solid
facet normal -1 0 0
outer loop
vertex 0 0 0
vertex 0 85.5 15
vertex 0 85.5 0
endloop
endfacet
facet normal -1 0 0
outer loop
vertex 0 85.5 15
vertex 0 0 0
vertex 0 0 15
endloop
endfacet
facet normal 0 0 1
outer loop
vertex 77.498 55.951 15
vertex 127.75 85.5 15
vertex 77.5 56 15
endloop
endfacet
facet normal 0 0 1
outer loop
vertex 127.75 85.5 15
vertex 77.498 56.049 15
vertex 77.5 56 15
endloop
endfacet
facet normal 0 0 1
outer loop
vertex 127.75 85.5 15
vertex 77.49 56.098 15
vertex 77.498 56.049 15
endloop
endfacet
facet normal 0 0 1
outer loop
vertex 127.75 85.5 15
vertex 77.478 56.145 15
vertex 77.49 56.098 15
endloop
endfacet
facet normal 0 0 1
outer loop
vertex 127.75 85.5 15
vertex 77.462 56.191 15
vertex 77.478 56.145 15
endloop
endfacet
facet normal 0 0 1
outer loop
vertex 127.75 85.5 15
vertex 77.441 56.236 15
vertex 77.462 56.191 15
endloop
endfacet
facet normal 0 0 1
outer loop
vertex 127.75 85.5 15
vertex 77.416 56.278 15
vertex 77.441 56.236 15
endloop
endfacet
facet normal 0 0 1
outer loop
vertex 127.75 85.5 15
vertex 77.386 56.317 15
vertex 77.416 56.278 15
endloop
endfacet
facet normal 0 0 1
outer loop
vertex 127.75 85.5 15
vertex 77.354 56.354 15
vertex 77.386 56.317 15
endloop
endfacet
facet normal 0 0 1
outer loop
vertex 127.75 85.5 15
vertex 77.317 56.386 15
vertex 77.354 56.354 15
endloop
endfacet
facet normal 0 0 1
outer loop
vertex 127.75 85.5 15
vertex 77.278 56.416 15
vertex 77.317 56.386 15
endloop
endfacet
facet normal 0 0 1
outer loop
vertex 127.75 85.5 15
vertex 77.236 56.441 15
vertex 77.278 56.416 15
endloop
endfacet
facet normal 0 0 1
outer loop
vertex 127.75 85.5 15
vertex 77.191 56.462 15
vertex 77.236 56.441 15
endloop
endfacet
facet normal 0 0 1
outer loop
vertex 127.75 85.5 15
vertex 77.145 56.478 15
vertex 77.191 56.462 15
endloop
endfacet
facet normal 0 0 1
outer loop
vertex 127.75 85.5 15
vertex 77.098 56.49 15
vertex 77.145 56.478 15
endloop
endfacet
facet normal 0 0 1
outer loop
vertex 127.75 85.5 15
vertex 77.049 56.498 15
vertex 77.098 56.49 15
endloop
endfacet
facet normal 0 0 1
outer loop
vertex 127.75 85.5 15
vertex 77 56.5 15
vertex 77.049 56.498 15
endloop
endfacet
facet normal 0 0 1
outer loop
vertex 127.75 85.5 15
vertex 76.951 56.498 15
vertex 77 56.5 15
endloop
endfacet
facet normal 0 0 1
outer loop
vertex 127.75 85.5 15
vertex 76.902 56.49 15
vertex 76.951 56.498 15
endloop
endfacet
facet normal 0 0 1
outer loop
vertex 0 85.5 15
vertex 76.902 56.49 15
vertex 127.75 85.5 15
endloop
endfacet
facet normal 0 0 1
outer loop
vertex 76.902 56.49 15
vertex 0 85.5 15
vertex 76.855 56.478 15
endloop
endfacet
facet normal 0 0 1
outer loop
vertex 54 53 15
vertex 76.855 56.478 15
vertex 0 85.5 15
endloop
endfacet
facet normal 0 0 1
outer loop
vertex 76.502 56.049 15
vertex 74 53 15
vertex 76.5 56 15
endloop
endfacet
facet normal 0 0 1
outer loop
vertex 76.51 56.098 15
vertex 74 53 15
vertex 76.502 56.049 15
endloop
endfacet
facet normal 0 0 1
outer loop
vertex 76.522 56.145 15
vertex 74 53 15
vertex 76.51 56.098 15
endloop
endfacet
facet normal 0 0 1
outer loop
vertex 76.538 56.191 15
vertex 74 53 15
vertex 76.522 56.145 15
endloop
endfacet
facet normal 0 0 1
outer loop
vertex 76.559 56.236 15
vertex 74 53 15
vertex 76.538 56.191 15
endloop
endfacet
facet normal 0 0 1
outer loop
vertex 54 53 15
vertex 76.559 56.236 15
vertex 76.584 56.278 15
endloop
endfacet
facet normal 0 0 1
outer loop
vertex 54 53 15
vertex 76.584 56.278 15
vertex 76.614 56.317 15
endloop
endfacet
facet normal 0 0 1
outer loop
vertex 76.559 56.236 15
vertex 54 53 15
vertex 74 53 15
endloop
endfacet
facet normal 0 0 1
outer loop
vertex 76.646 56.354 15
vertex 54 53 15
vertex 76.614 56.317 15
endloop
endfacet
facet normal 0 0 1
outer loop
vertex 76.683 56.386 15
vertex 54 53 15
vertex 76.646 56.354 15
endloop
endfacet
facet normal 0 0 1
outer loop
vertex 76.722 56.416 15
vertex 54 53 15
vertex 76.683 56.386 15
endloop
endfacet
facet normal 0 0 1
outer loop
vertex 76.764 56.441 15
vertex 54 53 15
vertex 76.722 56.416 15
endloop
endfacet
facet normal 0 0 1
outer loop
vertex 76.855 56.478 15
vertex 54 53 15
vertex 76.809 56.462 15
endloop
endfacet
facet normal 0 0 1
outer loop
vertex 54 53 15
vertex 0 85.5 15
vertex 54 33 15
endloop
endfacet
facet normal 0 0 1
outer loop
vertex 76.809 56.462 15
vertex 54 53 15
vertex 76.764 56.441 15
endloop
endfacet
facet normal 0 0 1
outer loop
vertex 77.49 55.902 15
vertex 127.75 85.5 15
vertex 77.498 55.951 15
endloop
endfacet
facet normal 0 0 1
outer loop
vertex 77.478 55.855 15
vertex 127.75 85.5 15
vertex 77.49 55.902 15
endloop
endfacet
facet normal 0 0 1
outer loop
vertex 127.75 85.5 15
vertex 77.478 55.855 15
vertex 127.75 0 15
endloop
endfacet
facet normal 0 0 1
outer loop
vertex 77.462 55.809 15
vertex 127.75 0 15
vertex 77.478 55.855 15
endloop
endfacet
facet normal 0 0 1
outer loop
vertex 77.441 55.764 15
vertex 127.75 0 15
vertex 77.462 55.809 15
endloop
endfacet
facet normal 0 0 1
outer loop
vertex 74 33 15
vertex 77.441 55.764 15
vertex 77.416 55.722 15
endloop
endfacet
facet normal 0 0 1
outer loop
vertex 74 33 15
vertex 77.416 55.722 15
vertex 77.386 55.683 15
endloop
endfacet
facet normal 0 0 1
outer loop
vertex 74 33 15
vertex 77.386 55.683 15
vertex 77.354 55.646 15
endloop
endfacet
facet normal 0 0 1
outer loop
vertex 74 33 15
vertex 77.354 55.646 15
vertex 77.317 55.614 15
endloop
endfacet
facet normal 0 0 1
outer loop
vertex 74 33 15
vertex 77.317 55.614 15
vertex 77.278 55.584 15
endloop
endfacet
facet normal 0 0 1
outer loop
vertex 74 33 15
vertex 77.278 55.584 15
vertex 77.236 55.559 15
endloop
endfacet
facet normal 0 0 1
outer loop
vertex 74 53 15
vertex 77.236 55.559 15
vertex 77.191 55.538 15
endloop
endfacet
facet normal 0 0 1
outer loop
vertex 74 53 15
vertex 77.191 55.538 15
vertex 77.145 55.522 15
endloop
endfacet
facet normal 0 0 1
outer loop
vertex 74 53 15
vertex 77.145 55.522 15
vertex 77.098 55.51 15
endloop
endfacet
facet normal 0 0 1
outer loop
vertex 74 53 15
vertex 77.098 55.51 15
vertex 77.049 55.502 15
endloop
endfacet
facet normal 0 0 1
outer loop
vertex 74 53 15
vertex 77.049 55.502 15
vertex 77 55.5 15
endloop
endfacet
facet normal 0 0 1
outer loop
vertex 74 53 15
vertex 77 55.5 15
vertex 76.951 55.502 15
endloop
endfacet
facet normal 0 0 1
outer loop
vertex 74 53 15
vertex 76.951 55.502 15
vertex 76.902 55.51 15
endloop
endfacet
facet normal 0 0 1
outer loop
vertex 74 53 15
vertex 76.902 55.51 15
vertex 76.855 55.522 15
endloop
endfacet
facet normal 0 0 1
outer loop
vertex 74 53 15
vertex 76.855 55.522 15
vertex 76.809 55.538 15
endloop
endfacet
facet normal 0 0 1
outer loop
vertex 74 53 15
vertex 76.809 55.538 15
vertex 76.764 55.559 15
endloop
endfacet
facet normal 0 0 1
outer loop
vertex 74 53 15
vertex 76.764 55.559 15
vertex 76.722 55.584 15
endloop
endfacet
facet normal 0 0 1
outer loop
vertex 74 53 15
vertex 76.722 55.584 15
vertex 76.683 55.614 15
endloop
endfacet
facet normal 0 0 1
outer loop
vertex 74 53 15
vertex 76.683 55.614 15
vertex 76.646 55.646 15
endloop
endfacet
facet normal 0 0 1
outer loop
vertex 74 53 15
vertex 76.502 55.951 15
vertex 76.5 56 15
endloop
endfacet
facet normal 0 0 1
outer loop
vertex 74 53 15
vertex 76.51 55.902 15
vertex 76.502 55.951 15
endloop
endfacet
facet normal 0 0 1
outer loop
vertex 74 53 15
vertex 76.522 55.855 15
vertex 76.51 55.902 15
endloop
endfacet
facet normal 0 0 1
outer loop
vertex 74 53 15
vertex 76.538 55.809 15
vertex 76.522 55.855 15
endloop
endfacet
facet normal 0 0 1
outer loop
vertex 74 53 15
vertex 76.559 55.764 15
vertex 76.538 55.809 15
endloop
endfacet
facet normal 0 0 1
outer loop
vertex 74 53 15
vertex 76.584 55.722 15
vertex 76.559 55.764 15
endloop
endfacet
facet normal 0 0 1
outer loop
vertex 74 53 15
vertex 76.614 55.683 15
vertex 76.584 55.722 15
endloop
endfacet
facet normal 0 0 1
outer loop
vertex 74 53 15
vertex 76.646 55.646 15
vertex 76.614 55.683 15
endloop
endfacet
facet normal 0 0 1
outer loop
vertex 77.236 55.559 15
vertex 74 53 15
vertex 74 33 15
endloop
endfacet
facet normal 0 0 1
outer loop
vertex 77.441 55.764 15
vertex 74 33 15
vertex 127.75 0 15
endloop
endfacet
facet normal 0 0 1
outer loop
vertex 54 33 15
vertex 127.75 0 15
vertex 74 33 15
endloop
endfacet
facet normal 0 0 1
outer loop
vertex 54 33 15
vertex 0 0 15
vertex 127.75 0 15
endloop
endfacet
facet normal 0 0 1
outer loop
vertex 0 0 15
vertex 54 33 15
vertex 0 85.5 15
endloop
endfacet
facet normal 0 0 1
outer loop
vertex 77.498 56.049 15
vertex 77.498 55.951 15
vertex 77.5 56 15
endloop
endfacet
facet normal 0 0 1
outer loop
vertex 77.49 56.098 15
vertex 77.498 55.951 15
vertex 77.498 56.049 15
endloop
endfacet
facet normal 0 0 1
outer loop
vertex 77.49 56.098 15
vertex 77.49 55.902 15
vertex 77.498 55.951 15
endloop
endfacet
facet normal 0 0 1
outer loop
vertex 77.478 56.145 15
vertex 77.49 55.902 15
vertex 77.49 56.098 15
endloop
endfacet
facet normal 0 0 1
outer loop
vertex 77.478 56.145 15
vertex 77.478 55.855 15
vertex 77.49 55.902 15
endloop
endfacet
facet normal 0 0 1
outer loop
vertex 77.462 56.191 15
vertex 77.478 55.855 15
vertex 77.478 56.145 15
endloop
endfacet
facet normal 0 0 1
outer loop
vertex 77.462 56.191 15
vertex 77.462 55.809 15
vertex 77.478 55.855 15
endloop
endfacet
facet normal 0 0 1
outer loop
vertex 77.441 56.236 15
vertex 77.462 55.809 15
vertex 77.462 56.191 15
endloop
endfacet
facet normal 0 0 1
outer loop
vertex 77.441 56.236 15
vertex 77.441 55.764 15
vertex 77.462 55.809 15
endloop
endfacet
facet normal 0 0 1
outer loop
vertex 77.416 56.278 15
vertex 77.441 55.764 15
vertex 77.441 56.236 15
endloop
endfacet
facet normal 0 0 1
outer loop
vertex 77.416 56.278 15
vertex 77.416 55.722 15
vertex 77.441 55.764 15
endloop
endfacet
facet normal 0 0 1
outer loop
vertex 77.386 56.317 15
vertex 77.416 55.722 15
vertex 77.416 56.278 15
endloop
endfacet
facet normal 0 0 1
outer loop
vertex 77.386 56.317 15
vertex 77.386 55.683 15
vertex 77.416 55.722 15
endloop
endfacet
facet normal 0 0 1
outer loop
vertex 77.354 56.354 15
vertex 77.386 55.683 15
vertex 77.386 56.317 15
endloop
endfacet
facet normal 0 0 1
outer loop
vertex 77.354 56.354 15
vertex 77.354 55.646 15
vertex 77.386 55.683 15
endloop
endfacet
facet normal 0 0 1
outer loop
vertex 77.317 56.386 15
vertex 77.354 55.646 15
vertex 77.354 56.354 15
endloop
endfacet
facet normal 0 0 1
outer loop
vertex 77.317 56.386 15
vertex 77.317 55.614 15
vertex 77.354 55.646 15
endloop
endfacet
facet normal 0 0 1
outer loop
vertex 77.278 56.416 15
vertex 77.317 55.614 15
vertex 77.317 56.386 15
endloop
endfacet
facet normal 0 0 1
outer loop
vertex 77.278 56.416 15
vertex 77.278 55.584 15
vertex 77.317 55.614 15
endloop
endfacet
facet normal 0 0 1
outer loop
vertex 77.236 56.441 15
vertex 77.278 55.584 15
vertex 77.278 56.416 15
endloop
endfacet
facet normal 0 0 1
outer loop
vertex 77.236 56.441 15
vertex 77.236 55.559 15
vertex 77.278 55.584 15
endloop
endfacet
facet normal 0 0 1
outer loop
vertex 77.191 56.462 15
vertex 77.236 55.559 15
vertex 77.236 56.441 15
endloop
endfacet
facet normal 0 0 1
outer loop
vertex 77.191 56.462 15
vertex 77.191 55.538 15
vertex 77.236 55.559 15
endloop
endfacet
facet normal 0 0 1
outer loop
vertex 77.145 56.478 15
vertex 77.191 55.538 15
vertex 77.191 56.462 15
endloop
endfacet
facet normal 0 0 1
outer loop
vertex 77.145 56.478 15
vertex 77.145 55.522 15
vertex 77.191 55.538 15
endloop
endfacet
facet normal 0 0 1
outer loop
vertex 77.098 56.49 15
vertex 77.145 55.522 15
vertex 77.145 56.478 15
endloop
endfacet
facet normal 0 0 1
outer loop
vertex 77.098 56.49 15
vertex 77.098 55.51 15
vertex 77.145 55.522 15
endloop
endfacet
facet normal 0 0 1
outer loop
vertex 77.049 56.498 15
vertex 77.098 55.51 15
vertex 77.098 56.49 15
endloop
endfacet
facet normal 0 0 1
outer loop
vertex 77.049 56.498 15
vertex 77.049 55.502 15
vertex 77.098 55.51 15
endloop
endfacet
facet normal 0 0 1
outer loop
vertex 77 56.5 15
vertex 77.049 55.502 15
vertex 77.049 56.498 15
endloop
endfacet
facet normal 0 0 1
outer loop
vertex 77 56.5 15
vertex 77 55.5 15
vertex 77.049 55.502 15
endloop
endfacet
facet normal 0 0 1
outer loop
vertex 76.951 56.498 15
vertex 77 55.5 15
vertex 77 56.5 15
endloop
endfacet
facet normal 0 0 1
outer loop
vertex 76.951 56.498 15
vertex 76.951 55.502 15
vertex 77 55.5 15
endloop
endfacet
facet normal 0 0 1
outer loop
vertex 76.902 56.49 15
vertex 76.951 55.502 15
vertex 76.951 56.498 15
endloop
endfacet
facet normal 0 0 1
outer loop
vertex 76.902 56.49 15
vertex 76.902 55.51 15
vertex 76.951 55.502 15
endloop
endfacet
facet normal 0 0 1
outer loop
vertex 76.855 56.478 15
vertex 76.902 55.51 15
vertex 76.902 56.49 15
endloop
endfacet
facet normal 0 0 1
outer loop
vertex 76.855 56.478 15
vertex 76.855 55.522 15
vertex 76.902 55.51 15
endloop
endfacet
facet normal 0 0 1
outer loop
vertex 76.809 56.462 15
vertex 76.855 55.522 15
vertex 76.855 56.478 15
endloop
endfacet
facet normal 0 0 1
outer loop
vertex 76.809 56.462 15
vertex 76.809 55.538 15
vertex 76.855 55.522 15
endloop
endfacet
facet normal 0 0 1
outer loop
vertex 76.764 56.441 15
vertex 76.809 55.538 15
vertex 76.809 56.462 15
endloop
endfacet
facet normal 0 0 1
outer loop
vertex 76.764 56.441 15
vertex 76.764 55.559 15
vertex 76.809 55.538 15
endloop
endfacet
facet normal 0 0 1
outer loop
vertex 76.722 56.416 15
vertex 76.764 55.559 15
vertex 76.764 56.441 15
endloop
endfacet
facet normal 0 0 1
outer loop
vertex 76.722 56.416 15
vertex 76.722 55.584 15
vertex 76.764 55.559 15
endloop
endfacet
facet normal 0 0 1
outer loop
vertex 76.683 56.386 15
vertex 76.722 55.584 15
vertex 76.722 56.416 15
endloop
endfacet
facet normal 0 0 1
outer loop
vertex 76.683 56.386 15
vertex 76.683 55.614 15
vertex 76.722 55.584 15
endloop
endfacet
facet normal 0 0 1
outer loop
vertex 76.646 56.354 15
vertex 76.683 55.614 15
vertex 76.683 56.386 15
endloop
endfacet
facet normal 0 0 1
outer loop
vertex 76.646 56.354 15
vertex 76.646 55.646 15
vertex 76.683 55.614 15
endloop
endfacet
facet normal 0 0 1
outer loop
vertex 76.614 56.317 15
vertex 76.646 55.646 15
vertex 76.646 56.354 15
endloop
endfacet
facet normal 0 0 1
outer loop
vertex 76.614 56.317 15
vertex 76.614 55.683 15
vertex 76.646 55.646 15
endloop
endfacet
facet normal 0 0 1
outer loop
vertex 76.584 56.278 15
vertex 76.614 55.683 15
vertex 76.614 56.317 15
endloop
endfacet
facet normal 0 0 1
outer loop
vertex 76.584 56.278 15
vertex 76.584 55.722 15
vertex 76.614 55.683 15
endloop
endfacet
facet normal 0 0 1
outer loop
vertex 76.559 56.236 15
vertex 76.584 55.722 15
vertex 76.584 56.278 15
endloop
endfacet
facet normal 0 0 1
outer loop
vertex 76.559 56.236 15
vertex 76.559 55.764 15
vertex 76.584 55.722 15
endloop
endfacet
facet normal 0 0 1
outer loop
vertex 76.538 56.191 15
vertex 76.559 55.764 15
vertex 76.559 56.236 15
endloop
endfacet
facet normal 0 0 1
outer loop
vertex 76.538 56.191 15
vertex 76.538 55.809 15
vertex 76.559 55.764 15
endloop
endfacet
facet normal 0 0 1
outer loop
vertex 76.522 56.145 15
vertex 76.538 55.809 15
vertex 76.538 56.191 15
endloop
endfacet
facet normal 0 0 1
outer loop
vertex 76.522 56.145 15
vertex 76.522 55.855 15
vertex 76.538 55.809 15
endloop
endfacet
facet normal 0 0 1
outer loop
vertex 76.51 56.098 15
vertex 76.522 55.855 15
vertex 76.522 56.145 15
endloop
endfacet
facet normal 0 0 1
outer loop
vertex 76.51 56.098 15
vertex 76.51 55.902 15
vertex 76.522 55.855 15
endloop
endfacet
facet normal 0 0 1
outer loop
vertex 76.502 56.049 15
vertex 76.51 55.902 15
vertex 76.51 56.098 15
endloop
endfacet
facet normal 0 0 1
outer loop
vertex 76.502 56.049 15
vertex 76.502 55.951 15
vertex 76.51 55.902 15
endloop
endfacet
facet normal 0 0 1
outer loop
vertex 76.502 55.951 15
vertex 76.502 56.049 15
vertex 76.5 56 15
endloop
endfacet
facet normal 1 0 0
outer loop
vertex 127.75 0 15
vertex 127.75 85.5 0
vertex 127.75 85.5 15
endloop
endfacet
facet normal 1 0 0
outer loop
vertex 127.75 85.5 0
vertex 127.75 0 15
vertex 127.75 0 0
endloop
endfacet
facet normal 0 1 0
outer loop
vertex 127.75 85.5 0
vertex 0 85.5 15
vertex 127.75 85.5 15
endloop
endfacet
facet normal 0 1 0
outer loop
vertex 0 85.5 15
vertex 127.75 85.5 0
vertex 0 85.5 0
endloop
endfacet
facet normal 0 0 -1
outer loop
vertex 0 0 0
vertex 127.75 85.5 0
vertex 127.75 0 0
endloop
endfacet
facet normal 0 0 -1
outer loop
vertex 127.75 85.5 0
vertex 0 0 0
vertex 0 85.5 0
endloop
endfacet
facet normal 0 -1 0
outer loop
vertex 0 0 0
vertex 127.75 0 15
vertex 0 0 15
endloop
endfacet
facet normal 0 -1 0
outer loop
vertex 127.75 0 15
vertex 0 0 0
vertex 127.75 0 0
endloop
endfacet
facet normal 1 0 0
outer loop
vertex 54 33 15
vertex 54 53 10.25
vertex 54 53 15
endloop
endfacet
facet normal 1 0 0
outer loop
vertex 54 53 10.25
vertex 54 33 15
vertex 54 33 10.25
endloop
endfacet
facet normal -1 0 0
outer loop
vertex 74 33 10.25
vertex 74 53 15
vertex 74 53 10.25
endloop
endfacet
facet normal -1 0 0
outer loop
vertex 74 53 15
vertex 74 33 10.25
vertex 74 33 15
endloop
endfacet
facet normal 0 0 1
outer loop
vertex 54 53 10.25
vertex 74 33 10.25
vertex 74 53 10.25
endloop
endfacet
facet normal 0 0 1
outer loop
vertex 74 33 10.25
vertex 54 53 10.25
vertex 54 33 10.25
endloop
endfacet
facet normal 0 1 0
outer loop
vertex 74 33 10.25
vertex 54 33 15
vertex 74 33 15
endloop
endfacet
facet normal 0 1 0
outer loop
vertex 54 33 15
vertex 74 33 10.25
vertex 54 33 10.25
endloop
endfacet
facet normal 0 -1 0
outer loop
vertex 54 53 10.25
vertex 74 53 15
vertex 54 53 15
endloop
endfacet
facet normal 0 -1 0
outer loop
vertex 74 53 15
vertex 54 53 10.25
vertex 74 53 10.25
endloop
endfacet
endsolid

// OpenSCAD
// Opentrons Calibration Adapter - Temperature Module
// loadName: opentrons_calibration_adapter_temperature_module
// Auto-generated by labware_to_stl.py from Opentrons V2 labware definition

$fn = 64;

difference() {
    // ── Labware body ──────────────────────────────────────────────
    cube([127.7500, 85.5000, 15.0000]);

    // ── Well cutouts ──────────────────────────────────────────────
    // Well A1
    translate([54.0000, 33.0000, 10.2500])
        cube([20.0000, 20.0000, 5.7500]);
    // Well B1
    translate([77.0000, 56.0000, 15.0000])
        cylinder(h=1.0000, r=0.5000, $fn=$fn);
}
